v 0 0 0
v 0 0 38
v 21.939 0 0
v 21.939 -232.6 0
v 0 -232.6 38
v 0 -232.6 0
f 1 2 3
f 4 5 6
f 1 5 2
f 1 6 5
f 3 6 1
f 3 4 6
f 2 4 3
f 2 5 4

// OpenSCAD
// =============================================================================
// CONSOLE10 — Front Insert  v3.0  (parametric remodel of NASA_Insert_Front.stl)
//
// Triangular-prism wedge that sits ON TOP of the bottom panel, at the FRONT,
// spanning BETWEEN the cheeks. 30 deg face (matches the front slant). Print
// standalone and glue, or merge into the bottom part.
//
// (Original STL face was ~28.5 deg; this uses the design-correct 30 deg.)
// =============================================================================

panel_width  = 253;       // 10" mini-rack width (= bottom/top width)
cheek_thick  = 10;        // cheek thickness
span_clear   = 0.4;       // total fit clearance between the cheeks
span_width   = panel_width - 2*cheek_thick - span_clear;   // ~232.6 (fits between cheeks)

wedge_height = 38;        // vertical leg, mm
wedge_angle  = 30;        // face angle from vertical, deg
wedge_depth  = wedge_height * tan(wedge_angle);            // 21.94 at 30 deg

echo(str("front insert  span(X)=", span_width, "  depth(Y)=", wedge_depth,
         "  height(Z)=", wedge_height, "  angle=", wedge_angle));

// Cross-section in X-Z (depth x height); extruded along the span.
module front_insert() {
    rotate([90, 0, 0])
        linear_extrude(height = span_width)
            polygon([[0, 0], [wedge_depth, 0], [0, wedge_height]]);
}

front_insert();
